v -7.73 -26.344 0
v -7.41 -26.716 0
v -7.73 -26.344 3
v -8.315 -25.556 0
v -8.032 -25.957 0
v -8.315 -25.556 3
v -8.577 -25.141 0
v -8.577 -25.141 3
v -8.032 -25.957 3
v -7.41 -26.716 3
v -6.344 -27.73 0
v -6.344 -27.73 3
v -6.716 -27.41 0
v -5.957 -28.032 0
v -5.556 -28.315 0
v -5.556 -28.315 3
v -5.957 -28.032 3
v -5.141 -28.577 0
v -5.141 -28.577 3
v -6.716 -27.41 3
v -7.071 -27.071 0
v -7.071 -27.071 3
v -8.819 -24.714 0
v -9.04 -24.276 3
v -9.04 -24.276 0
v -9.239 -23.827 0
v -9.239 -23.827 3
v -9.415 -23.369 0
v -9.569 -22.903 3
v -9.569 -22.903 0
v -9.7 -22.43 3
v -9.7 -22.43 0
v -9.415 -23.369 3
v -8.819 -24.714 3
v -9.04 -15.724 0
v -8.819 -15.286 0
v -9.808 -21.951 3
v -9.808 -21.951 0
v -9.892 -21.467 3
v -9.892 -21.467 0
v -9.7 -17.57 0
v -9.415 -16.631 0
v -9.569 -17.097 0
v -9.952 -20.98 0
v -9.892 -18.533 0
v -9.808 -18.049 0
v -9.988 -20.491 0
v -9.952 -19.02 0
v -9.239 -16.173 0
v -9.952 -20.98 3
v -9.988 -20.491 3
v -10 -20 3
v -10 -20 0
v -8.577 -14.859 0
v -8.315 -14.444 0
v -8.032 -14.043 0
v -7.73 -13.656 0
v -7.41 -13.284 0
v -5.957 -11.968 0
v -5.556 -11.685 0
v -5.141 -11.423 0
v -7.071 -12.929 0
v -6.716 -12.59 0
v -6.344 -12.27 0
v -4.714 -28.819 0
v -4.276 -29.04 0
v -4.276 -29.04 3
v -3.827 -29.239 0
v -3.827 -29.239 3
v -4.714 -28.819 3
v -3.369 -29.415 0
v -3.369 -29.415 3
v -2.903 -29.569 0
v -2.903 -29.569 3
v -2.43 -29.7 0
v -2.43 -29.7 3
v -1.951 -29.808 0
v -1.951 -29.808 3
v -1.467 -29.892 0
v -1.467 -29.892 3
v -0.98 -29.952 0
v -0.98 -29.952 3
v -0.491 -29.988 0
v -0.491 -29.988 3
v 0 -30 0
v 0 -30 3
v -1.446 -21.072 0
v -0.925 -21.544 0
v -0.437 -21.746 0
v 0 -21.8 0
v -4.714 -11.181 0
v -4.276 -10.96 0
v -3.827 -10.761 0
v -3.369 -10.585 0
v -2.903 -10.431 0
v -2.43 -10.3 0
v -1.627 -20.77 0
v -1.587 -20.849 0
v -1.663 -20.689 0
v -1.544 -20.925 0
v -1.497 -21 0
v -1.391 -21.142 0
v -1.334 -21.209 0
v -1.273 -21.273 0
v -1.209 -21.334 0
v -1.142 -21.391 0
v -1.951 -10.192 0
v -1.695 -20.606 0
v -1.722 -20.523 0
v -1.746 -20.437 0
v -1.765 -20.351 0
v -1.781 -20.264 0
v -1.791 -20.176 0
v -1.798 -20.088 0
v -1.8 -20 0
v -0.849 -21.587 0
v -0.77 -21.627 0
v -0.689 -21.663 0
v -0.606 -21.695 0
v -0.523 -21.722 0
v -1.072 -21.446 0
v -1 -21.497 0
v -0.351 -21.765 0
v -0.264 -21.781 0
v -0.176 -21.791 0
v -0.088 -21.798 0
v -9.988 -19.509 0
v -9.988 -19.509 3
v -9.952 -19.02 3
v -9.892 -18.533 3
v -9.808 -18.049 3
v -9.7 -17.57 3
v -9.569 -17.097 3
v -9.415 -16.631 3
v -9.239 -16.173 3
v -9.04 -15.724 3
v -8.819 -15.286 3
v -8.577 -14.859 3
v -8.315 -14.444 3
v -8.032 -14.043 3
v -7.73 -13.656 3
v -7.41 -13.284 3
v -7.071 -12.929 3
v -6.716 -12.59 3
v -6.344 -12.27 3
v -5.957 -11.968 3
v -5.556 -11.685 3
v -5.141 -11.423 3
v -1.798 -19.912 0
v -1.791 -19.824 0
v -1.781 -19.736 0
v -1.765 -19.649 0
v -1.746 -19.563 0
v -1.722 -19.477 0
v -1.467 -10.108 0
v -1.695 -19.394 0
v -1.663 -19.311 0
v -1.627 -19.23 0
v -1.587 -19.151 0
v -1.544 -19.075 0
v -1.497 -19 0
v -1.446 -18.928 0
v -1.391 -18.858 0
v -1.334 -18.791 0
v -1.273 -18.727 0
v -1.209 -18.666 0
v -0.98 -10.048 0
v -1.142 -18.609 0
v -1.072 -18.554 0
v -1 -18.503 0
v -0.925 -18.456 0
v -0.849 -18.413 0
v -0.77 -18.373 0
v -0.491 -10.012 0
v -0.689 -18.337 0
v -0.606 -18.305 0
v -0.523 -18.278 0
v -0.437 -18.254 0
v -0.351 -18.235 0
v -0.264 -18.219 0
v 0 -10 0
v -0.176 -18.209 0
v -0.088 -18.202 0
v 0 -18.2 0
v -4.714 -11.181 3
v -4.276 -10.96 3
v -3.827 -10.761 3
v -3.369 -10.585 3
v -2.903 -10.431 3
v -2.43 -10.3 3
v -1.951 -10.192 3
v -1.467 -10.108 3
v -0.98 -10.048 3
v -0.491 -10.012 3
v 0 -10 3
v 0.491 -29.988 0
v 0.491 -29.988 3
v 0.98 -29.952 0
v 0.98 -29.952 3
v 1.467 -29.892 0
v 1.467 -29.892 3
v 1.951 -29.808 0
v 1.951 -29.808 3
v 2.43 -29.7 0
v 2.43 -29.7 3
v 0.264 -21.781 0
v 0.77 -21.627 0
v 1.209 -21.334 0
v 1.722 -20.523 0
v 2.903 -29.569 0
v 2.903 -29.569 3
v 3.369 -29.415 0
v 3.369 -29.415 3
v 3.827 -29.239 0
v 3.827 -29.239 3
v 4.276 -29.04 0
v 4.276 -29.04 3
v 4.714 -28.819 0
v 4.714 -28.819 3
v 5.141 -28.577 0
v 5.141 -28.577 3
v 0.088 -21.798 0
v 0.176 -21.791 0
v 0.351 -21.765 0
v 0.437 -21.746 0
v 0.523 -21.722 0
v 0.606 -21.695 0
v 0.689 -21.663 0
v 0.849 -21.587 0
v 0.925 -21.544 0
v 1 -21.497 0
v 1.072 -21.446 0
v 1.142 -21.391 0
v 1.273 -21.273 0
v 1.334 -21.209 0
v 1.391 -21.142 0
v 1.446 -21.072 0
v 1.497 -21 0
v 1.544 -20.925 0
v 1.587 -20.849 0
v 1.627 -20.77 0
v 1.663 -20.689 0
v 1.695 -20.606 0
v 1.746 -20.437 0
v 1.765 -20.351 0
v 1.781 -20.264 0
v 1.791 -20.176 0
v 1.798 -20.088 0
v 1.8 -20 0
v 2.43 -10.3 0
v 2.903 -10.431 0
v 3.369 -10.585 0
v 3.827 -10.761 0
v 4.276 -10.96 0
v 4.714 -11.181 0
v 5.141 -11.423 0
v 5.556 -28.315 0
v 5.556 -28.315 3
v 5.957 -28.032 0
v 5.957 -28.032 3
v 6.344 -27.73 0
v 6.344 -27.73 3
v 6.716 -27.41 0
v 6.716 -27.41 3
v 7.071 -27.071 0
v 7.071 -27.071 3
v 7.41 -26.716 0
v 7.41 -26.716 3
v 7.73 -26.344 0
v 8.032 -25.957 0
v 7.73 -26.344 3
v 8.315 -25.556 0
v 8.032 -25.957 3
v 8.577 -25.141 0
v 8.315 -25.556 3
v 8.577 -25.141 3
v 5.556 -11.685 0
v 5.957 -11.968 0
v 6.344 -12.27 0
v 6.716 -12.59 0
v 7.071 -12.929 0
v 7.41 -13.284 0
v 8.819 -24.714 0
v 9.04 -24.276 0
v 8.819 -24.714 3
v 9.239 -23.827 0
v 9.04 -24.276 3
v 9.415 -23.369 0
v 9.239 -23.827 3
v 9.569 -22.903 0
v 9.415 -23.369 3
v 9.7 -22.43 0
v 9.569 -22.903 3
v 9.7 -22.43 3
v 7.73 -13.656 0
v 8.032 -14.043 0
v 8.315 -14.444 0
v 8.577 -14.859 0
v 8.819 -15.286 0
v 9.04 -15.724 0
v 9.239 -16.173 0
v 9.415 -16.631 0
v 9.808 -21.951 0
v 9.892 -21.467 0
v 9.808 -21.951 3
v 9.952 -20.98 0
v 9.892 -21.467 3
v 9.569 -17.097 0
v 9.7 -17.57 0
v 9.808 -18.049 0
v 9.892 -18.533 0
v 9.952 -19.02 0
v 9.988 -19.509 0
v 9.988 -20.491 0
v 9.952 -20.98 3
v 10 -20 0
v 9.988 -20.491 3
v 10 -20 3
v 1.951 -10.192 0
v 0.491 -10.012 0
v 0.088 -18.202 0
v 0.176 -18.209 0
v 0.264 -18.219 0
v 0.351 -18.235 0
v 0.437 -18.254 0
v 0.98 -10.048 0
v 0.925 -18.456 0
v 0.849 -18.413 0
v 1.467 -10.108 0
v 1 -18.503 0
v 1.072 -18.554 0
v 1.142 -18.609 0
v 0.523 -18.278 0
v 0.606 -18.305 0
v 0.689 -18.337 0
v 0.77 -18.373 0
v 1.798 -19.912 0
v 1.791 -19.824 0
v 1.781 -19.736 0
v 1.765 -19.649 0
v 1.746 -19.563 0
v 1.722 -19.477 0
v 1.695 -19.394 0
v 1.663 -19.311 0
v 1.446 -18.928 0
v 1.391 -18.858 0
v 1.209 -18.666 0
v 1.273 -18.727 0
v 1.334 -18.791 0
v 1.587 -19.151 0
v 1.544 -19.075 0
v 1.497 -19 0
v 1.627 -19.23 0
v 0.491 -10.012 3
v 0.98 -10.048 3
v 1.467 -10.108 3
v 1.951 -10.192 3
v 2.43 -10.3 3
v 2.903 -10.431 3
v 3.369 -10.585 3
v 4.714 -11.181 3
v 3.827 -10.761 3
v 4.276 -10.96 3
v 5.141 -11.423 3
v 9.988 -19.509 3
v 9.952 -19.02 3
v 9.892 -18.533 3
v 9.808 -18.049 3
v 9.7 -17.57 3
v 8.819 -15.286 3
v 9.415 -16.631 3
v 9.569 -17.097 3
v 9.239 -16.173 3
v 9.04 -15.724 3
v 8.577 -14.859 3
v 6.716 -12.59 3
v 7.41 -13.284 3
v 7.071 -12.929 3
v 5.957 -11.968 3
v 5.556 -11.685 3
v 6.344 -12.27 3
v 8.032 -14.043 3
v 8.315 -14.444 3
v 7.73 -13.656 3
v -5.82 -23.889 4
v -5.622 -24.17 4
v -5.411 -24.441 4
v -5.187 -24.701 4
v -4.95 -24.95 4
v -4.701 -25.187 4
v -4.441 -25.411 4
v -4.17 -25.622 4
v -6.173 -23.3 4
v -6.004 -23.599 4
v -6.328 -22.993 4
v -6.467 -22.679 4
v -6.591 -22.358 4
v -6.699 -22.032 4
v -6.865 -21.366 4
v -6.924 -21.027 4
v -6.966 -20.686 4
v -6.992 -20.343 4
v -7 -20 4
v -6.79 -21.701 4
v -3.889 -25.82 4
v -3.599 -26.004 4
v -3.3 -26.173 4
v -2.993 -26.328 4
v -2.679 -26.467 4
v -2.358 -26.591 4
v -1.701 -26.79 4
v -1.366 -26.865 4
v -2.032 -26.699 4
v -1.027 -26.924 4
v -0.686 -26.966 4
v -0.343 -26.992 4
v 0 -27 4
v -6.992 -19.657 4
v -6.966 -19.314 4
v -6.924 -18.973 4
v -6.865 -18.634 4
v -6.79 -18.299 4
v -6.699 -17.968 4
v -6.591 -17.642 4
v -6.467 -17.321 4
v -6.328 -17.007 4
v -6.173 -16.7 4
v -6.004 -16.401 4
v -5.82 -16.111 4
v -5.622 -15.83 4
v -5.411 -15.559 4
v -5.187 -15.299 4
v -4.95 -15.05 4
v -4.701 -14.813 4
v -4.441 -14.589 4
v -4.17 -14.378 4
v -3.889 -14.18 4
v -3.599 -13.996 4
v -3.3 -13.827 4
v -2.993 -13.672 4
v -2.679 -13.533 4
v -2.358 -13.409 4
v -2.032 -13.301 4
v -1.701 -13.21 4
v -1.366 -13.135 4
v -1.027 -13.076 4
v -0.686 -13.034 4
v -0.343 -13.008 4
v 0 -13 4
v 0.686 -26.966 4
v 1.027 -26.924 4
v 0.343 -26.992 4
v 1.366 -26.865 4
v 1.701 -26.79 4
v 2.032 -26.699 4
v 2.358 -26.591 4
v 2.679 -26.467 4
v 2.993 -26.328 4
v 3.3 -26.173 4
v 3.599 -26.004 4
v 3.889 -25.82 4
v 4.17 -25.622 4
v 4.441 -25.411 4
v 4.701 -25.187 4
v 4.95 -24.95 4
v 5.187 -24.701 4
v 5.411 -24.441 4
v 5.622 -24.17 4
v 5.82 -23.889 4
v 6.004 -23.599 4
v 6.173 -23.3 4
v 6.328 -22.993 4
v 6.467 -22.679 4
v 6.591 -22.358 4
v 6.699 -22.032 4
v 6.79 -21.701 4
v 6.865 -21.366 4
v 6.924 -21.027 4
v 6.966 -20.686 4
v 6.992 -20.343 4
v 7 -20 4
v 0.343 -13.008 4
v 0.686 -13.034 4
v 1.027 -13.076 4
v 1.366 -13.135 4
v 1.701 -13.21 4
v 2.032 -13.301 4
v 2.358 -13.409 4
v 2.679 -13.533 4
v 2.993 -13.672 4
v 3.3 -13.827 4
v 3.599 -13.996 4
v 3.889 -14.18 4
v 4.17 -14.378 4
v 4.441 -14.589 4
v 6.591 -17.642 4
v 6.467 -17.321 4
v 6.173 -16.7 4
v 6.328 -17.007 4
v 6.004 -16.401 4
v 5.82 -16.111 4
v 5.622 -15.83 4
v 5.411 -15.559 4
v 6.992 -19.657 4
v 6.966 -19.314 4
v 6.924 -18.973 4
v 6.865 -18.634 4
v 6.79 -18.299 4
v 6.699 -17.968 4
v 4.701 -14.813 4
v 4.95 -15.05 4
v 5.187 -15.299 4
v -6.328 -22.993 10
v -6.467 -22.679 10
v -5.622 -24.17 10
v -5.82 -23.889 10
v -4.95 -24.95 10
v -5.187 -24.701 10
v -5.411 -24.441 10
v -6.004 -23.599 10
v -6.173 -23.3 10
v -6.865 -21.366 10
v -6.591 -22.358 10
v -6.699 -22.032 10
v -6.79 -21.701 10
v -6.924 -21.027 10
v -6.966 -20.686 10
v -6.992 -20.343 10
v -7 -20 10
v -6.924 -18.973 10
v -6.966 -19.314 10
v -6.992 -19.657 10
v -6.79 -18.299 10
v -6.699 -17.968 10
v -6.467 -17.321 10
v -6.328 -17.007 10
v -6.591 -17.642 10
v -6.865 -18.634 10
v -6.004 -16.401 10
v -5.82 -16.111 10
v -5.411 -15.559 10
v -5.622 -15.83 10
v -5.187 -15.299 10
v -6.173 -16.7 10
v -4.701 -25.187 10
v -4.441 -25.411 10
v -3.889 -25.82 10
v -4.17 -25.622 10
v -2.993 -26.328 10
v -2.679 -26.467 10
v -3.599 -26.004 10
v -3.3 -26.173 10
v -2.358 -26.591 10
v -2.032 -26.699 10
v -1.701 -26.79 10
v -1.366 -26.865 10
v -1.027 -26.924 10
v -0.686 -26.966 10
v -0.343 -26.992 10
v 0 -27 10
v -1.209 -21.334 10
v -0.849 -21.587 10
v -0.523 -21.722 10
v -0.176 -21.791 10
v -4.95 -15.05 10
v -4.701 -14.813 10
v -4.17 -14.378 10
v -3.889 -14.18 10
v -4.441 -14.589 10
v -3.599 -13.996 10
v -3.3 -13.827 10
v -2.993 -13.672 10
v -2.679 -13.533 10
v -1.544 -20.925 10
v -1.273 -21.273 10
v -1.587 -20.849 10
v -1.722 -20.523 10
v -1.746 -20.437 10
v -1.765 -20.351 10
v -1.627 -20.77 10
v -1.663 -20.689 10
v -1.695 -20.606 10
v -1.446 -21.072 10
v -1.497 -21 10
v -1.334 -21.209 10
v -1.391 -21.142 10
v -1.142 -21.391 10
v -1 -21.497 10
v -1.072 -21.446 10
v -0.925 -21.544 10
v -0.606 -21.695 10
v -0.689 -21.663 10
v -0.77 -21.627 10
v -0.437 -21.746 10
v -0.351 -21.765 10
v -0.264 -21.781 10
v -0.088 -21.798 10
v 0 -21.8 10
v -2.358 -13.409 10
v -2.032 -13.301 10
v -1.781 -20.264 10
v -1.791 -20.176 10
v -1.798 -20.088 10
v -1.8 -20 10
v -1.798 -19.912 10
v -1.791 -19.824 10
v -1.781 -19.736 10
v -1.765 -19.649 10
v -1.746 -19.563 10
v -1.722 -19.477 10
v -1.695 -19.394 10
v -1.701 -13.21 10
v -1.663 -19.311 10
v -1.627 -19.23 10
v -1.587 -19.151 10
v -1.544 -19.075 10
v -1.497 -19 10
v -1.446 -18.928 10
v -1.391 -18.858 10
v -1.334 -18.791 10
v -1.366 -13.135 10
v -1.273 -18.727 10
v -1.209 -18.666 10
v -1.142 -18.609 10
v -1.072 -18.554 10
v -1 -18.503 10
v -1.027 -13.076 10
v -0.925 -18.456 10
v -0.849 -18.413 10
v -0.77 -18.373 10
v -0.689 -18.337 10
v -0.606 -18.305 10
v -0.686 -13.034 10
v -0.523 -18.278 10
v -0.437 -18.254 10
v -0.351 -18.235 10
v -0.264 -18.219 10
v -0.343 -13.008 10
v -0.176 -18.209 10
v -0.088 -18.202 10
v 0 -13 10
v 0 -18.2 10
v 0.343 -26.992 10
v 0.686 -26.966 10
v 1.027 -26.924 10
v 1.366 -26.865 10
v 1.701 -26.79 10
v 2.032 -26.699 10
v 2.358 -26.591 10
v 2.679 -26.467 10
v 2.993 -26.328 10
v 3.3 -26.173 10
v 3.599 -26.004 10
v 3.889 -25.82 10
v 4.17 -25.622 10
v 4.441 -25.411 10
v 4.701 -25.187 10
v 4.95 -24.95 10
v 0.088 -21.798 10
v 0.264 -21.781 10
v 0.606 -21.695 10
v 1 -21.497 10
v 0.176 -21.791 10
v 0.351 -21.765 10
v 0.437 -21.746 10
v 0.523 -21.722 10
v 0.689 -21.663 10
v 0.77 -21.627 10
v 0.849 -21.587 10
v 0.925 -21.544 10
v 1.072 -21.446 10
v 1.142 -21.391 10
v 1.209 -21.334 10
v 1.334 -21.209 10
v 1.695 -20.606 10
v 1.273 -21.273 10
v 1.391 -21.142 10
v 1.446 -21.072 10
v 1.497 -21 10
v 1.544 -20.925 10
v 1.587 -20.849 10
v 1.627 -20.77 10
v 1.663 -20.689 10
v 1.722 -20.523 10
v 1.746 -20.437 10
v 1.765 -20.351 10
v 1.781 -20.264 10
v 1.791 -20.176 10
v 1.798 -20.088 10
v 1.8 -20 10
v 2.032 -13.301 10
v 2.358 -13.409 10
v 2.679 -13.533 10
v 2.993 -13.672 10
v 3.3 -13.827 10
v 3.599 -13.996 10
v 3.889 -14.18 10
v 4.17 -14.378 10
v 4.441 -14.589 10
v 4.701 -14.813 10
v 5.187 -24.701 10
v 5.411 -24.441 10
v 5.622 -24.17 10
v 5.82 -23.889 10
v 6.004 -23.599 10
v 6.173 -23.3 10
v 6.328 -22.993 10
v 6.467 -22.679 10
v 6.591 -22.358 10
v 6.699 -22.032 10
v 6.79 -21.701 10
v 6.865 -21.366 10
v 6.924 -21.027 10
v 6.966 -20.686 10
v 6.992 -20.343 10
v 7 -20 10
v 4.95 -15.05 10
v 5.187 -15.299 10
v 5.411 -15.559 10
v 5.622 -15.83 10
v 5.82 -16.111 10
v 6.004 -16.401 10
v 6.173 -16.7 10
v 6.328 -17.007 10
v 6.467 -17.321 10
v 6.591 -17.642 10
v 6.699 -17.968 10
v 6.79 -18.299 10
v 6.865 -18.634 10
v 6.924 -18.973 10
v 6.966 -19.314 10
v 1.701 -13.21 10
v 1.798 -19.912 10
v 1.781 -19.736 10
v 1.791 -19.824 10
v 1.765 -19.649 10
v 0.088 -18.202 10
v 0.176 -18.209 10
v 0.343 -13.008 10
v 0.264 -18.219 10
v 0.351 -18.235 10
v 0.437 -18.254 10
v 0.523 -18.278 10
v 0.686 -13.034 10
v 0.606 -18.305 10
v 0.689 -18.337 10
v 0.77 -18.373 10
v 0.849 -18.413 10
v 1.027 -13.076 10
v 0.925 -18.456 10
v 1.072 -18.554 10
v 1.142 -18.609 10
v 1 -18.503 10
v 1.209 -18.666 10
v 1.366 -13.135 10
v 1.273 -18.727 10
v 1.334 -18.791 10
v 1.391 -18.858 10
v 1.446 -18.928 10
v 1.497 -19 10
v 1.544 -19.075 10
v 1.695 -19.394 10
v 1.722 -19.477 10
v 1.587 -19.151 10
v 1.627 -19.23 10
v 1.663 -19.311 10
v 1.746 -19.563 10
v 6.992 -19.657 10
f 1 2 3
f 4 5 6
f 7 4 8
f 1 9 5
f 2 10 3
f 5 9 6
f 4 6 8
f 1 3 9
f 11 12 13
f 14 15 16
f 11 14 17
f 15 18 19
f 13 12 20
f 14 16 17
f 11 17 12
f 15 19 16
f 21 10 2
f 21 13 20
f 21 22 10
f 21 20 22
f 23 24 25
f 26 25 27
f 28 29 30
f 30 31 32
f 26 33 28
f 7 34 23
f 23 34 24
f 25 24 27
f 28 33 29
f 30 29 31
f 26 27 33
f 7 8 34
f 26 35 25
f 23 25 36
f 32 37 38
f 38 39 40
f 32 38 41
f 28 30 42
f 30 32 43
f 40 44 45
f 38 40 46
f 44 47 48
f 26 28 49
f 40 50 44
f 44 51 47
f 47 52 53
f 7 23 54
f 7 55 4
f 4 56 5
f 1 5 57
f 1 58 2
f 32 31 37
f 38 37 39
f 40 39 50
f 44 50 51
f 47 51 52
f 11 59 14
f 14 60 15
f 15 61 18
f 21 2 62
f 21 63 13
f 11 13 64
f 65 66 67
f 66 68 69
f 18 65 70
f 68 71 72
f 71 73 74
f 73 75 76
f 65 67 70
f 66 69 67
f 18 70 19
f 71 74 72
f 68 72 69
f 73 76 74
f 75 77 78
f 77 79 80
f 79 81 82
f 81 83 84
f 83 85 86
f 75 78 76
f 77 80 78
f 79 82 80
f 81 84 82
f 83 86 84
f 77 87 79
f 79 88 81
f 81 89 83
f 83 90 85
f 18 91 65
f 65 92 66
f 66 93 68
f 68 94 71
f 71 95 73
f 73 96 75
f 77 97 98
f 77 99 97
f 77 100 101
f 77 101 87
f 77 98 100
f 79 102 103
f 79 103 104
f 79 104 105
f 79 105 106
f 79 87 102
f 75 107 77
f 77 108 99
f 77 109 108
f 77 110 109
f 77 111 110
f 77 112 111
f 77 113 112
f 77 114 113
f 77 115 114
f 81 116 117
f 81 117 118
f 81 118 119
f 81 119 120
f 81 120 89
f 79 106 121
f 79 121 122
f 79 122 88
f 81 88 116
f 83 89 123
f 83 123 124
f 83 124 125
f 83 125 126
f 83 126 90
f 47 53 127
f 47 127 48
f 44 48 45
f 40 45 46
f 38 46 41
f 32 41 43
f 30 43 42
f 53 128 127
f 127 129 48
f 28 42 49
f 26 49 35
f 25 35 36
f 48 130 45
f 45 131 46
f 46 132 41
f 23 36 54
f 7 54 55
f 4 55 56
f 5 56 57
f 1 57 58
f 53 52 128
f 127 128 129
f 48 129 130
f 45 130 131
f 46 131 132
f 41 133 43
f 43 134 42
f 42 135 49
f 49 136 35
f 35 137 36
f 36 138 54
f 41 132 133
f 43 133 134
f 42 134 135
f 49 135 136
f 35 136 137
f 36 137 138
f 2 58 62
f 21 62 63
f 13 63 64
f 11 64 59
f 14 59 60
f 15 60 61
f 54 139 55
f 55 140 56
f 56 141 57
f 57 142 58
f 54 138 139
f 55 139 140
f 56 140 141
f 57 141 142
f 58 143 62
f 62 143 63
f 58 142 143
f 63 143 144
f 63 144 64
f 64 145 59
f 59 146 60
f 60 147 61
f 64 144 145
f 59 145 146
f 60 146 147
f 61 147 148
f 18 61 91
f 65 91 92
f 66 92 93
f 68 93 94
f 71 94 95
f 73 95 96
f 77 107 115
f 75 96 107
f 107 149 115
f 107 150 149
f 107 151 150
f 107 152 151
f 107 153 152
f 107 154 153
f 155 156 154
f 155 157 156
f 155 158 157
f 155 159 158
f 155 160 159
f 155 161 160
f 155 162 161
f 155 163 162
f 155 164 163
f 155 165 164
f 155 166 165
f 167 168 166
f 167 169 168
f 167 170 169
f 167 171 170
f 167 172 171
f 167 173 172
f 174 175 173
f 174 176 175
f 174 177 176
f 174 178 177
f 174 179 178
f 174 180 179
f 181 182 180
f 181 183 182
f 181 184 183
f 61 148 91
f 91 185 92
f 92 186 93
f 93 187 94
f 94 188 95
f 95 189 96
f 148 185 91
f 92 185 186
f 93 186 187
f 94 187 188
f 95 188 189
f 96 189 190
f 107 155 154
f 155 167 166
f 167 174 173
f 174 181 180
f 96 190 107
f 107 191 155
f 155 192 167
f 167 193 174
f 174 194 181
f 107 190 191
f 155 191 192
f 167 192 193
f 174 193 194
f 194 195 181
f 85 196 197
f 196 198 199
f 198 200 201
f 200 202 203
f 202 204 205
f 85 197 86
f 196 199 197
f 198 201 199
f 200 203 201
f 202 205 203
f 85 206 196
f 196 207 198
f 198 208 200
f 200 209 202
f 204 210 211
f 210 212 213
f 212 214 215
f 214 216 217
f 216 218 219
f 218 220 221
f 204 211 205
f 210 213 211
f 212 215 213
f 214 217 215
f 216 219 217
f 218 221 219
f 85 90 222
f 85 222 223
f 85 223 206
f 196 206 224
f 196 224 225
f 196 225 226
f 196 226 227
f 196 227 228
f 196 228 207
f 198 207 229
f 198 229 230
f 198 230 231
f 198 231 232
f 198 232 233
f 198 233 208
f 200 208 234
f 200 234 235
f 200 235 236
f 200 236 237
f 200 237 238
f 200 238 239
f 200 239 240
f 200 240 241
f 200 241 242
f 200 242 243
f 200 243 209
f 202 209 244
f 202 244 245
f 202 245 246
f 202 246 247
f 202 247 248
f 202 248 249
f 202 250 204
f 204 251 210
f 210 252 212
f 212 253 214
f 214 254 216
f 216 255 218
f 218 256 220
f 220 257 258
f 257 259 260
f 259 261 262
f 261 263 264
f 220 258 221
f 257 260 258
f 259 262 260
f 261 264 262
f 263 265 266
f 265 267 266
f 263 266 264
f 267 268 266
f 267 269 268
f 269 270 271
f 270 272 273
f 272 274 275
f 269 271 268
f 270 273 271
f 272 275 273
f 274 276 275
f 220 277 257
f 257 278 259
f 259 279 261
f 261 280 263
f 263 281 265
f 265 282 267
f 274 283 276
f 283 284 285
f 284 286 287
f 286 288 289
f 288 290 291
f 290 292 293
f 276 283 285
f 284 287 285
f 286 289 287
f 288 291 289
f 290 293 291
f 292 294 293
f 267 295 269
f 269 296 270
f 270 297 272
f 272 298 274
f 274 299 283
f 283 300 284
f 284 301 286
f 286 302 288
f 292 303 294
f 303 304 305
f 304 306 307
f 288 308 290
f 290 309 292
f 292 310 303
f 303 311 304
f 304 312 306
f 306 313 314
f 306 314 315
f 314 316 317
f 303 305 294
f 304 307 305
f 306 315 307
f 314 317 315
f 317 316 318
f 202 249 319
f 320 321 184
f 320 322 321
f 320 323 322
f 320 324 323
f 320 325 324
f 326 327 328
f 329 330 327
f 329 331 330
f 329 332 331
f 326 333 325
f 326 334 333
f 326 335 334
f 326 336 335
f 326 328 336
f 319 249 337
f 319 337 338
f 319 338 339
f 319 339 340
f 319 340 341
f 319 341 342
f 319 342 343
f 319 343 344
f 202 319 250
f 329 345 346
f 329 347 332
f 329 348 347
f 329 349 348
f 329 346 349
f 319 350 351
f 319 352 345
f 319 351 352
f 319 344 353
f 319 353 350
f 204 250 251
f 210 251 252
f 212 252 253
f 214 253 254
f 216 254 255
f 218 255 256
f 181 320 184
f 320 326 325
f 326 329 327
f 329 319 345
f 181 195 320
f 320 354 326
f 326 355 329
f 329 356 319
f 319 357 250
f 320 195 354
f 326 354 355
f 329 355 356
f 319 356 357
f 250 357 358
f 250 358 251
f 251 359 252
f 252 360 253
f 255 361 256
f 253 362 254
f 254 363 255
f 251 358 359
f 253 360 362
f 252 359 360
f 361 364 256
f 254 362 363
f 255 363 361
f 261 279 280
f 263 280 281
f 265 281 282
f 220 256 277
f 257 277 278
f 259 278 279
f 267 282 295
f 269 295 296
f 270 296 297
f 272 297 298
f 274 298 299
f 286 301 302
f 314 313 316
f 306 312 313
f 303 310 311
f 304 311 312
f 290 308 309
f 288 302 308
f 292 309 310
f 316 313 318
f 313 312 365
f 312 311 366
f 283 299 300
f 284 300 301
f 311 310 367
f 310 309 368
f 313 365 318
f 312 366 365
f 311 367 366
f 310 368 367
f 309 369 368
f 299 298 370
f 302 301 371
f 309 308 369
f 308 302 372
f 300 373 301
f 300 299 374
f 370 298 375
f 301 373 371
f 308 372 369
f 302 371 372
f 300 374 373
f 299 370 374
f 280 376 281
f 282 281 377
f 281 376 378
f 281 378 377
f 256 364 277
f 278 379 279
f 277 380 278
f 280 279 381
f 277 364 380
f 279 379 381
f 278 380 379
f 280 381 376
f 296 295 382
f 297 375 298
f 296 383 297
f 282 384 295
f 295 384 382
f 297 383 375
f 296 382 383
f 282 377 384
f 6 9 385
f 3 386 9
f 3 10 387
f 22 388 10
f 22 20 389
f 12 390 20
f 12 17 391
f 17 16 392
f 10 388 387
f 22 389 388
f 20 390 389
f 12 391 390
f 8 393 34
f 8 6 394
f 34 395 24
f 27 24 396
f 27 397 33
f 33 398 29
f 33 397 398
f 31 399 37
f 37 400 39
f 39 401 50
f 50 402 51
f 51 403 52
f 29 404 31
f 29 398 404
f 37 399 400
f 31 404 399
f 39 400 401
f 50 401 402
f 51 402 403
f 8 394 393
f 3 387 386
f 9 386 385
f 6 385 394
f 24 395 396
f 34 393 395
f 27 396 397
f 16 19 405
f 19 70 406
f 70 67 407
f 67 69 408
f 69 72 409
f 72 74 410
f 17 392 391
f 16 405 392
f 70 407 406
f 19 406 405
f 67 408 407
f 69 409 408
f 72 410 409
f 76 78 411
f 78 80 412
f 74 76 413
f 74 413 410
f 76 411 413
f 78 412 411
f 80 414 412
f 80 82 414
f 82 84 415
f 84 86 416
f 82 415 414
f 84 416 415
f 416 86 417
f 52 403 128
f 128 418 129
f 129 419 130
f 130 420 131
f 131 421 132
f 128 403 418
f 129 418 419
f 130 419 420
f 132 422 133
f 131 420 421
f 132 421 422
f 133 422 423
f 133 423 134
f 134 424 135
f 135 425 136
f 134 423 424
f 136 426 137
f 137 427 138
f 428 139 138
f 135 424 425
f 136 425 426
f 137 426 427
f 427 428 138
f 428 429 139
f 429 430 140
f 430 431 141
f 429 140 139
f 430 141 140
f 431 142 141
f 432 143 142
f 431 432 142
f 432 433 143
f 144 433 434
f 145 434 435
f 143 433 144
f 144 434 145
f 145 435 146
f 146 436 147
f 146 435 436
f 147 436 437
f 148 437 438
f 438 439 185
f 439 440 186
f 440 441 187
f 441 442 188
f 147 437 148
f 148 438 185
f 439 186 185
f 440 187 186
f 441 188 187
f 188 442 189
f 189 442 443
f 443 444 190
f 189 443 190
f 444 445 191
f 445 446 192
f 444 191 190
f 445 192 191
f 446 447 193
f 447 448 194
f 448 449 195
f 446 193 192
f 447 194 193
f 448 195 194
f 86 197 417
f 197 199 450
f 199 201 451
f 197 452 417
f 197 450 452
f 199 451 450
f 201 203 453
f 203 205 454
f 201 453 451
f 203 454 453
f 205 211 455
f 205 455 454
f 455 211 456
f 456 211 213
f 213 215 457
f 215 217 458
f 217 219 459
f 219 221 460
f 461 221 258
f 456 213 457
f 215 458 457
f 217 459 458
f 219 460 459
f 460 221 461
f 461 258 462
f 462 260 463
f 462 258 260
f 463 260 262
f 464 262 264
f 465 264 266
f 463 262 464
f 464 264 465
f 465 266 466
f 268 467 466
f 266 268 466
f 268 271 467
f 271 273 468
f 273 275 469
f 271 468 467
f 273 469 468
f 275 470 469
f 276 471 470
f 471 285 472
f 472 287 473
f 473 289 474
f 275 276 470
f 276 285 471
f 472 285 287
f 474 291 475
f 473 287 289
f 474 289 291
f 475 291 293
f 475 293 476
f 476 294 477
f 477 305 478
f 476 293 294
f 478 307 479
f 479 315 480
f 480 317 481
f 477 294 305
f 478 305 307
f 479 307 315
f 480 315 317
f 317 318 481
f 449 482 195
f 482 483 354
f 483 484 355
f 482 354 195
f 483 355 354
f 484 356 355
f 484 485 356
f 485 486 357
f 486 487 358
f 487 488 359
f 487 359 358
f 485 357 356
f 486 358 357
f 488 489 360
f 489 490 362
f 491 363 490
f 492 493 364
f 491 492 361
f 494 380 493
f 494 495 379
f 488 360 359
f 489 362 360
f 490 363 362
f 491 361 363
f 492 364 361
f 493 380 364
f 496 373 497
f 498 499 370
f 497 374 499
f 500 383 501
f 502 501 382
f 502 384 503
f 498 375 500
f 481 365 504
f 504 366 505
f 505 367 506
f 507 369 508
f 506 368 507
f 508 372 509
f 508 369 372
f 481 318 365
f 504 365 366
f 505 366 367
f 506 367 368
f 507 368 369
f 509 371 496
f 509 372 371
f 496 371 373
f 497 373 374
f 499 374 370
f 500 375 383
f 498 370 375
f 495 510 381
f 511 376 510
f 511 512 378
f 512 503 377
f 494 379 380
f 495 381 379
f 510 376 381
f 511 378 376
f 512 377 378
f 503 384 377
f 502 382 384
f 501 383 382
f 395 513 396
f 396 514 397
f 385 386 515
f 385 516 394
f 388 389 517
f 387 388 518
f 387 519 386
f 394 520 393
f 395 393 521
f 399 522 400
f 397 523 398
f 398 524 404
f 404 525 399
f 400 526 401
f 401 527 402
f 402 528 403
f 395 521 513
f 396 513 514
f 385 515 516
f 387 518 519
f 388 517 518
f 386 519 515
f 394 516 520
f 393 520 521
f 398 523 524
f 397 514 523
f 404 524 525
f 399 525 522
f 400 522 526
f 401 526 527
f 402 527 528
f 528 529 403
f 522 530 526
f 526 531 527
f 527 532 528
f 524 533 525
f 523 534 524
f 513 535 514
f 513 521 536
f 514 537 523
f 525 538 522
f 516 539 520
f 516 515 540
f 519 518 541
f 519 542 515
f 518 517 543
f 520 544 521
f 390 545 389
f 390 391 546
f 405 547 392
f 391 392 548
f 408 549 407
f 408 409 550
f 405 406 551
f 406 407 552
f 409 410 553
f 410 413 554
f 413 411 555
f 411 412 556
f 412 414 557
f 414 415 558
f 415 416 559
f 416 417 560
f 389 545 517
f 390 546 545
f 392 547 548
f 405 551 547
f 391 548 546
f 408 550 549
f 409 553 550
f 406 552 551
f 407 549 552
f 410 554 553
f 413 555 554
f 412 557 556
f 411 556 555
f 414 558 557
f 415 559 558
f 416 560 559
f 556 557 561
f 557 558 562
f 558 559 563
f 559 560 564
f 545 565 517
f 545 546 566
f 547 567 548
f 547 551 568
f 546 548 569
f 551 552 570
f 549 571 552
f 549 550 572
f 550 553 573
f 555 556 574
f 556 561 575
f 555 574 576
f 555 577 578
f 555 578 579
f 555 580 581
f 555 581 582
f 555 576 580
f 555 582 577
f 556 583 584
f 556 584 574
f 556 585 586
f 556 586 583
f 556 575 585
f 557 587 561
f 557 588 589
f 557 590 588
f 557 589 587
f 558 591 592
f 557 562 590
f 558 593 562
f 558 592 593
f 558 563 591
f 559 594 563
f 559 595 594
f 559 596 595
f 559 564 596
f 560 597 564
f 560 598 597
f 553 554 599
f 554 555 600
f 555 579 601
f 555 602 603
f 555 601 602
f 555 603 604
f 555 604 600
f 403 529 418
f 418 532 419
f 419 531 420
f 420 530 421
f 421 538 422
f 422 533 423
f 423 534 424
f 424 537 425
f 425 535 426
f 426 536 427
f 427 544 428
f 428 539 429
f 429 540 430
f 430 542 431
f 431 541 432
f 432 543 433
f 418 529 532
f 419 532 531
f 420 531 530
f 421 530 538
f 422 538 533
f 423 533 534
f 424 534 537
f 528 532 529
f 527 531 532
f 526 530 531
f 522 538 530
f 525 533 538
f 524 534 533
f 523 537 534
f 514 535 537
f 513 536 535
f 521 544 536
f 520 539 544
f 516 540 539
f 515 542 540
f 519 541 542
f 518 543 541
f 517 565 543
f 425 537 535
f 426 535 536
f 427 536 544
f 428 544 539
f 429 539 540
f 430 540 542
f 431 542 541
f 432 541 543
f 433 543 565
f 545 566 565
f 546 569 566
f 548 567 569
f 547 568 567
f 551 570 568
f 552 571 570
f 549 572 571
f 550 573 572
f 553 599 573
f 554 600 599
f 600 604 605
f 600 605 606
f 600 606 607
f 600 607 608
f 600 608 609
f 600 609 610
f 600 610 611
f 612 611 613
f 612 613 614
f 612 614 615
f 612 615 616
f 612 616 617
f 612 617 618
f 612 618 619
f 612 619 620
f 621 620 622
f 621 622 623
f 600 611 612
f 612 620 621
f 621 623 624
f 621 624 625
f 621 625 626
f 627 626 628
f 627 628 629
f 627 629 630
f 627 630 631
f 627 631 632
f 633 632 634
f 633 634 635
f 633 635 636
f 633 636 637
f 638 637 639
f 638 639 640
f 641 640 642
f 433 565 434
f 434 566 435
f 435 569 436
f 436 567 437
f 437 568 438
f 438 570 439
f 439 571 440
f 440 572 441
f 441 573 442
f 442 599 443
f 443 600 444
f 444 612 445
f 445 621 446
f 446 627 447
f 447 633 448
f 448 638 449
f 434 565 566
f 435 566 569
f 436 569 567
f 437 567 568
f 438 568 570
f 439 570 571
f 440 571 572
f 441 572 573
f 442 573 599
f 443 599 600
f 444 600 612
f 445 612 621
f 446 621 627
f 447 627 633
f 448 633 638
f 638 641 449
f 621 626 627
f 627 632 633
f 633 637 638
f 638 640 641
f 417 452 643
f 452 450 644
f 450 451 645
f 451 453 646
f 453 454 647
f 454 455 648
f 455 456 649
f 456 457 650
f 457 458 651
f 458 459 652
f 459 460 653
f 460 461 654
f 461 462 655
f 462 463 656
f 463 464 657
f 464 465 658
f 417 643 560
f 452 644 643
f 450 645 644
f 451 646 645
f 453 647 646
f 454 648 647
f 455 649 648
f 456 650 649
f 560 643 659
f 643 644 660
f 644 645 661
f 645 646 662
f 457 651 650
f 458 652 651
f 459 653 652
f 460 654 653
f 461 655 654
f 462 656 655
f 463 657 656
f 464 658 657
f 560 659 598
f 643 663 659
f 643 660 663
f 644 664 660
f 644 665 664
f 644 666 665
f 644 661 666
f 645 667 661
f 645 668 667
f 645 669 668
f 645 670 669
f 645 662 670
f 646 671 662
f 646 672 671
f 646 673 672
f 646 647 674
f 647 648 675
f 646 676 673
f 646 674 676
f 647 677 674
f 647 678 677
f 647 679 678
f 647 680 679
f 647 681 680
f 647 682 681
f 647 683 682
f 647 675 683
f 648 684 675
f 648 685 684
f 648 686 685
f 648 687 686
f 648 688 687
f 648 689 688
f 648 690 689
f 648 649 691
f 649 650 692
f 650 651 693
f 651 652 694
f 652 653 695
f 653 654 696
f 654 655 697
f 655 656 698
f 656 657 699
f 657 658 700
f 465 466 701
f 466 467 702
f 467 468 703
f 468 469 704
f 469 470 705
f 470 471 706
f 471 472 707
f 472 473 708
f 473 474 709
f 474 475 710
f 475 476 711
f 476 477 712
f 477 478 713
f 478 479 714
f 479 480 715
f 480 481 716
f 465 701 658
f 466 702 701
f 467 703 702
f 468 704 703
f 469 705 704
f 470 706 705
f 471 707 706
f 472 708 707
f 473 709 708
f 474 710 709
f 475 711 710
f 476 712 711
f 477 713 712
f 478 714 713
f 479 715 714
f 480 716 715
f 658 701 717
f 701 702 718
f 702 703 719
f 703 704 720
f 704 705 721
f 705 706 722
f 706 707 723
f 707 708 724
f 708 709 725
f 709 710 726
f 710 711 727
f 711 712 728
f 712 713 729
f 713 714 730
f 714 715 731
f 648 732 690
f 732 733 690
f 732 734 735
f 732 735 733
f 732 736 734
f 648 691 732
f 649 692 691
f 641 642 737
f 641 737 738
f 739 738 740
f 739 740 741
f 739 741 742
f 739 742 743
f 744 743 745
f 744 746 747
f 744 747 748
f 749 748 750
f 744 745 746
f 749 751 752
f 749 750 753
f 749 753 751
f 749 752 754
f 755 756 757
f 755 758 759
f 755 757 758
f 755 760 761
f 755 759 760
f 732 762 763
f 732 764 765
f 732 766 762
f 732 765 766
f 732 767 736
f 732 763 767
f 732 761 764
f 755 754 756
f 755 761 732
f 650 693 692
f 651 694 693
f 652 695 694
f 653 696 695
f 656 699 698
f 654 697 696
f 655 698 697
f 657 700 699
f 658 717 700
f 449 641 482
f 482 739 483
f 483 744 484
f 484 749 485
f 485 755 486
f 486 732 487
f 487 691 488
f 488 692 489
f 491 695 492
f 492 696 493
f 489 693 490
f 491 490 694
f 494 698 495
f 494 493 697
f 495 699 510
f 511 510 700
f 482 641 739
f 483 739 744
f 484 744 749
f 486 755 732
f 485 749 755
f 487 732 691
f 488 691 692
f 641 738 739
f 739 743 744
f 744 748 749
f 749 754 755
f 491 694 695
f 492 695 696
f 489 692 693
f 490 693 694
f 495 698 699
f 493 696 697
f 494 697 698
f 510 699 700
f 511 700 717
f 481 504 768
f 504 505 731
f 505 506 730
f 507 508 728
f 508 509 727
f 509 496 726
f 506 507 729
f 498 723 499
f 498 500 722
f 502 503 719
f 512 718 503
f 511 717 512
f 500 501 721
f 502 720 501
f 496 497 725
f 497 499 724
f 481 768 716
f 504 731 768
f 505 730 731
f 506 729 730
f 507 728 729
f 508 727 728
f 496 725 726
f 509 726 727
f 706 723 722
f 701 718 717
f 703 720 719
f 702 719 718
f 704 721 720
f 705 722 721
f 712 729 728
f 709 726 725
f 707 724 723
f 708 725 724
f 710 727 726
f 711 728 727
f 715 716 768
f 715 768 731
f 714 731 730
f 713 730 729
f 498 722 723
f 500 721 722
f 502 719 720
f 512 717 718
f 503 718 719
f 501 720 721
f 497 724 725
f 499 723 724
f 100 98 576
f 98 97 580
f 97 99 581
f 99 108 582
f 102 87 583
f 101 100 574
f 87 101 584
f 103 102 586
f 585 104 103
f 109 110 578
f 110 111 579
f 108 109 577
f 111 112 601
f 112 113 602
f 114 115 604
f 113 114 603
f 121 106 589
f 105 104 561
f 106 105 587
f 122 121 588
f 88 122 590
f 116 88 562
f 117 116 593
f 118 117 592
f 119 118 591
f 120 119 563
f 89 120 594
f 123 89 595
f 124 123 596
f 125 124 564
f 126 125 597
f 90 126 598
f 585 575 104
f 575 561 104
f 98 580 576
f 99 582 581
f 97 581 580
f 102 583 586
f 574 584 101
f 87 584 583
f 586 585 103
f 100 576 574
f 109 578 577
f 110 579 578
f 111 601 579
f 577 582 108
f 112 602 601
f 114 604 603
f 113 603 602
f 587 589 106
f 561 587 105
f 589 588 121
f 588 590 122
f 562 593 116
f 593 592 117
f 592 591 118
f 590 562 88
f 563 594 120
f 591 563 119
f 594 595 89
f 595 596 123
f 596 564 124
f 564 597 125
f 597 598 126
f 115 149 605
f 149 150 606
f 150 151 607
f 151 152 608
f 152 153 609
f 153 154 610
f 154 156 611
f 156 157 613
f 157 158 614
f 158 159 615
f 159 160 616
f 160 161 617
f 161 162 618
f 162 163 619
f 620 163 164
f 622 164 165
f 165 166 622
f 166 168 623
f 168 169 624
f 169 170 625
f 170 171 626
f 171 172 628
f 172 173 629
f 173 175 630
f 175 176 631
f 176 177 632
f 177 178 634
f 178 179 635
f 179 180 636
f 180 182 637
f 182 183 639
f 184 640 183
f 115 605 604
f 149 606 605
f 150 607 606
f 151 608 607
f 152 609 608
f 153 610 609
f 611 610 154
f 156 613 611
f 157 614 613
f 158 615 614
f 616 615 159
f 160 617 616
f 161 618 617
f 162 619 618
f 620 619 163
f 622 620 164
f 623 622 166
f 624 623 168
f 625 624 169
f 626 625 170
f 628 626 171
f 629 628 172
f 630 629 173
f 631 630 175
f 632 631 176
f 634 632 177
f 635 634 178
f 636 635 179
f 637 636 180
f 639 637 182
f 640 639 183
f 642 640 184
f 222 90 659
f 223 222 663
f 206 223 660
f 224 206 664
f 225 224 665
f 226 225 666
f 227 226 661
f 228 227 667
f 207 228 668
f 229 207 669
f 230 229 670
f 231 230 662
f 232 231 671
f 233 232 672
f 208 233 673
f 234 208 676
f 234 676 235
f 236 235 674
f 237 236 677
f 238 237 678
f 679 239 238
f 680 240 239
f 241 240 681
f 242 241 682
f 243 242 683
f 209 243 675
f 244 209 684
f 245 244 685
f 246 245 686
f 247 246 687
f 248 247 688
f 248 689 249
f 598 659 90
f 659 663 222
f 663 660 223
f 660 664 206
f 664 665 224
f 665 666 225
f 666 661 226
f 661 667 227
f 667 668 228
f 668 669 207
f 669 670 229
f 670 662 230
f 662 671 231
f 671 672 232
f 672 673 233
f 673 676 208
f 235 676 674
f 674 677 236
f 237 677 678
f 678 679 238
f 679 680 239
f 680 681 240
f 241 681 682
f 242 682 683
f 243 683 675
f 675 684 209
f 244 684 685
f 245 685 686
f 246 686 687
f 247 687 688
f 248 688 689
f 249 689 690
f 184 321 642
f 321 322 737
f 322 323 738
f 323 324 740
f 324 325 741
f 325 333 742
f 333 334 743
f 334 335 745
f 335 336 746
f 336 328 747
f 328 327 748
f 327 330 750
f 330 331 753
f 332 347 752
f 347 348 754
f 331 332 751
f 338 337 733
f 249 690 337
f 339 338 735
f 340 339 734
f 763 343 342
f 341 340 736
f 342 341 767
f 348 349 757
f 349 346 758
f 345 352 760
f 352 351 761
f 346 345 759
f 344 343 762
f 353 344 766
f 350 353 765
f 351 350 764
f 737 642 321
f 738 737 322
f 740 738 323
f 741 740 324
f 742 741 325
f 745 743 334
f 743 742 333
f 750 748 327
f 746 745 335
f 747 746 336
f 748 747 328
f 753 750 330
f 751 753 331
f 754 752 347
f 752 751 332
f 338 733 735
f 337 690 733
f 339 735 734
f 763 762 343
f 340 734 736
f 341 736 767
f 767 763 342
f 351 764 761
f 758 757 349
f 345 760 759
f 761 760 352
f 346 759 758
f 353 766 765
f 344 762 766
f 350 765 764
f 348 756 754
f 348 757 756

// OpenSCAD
    
translate([0,-20,0])
difference() {
union() {
cylinder(d=20,h=3,$fn=128);
translate([0,0,3])
cylinder(d1=20,d2=14,h=1,$fn=128);
cylinder(d=14,h=10,$fn=128);
}
cylinder(d=3.6,h=10,$fn=128);
}
